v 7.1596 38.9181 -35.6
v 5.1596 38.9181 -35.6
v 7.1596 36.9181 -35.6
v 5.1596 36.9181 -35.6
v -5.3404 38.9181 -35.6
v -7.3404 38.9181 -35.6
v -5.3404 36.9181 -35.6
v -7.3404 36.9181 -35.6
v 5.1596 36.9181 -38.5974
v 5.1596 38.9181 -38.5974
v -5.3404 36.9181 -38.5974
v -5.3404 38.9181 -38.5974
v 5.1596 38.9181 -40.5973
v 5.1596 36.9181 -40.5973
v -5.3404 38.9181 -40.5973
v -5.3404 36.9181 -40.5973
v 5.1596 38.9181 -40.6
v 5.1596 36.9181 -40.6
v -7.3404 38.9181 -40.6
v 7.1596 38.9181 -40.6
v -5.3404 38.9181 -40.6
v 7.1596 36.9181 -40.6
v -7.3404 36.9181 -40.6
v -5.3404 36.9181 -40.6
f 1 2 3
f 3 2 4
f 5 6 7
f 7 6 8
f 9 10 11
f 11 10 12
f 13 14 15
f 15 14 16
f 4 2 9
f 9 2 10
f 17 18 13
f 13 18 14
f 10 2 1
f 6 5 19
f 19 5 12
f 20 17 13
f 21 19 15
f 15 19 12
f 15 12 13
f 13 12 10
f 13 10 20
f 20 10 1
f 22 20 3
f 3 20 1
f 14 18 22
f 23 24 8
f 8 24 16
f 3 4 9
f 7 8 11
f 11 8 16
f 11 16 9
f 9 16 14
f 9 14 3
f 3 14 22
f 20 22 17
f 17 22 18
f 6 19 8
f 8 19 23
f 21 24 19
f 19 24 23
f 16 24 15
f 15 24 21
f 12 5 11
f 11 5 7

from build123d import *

# Parameters (mm, degrees)
CUT_EXTRUDE1_DEPTH     = 5
CUT_EXTRUDE3_DEPTH     = 45
SKETCH8_R              = 40
CUT_EXTRUDE4_DEPTH     = 32
FILLET1_R              = 7
CUT_REVOLVE1_START     = 17
CUT_REVOLVE1_DEPTH     = 30.5
SKETCH18_W             = 13
SKETCH18_H             = 8
CUT_EXTRUDE13_DEPTH    = 5
SKETCH20_W             = 84
SKETCH20_H             = 7
CUT_EXTRUDE15_DEPTH    = 5
SKETCH19_R             = 1.5
CUT_EXTRUDE14_DEPTH    = 12
FILLET3_R              = 4
SKETCH21_W             = 16
SKETCH21_H             = 5
CUT_EXTRUDE16_DEPTH    = 5
CIRPATTERN1_COUNT      = 4
SKETCH22_W             = 5
SKETCH22_H             = 12
BOSS_EXTRUDE1_DEPTH    = 1.5
SKETCH23_W             = 5
SKETCH23_H             = 4.4
SKETCH23_H_2           = 4
BOSS_EXTRUDE2_DEPTH    = 17
SKETCH24_W             = 2
SKETCH24_H             = 3
BOSS_EXTRUDE3_DEPTH    = 2
CIRPATTERN2_COUNT      = 5
CUT_REVOLVE2_START     = 17
CUT_REVOLVE2_DEPTH     = 30.5
SKETCH29_W             = 16.2
SKETCH29_H             = 11.2
SKETCH29_W_2           = 13
SKETCH29_H_2           = 8
BOSS_EXTRUDE4_DEPTH    = 20
CUT_EXTRUDE18_DEPTH    = 12
SKETCH34_R             = 2.3
BOSS_EXTRUDE5_DEPTH    = 3.5
BOSS_EXTRUDE6_START    = 3.5
SKETCH35_R             = 2.3
BOSS_EXTRUDE6_DEPTH    = 3.5
SKETCH36_W             = 2
SKETCH36_H             = 2
BOSS_EXTRUDE7_DEPTH    = 5
SKETCH37_W             = 2
SKETCH37_H             = 2
BOSS_EXTRUDE8_DEPTH    = 12.5
SKETCH40_W             = 2
SKETCH40_H             = 2
BOSS_EXTRUDE9_DEPTH    = 5
INTERSECT7_START       = -43
INTERSECT7_OUTLINE_W   = 16.2
INTERSECT7_OUTLINE_H   = 20
INTERSECT7_OUTLINE_R   = 2.3
INTERSECT7_DEPTH       = 86
INTERSECT7_START_2     = -35.6
INTERSECT7_2_OUTLINE_W = 16.2
INTERSECT7_2_OUTLINE_H = 20
INTERSECT7_2_OUTLINE_R = 2.3
INTERSECT7_2_DEPTH     = 37.6


with BuildPart() as part:
    # Sketch1 → Revolve1 (revolve)
    with BuildSketch(Plane.XY, mode=Mode.PRIVATE) as revolve1_sk:
        with BuildLine():
            Line((37, 55), (0, 55))
            Line((0, 55), (0, 11.5))
            Line((0, 11.5), (22.5, 11.5))
            Line((22.5, 11.5), (22.5, 0))
            Line((22.5, 0), (25, 0))
            Line((25, 0), (25, 11.5))
            Line((25, 11.5), (42, 11.5))
            Line((42, 11.5), (42, 50))
            ThreePointArc((42, 50), (40.535533906, 53.535533906), (37, 55))
        make_face()
    revolve(revolve1_sk.sketch.rotate(Axis((0, 2, 0), (0, 1, 0)), 90), axis=Axis((0, 2, 0), (0, 1, 0)))

    # Sketch5 → Cut-Extrude1 (cut)
    with BuildSketch(Plane(origin=(0, 55, 0), x_dir=(1, 0, 0), z_dir=(0, 1, 0))):
        with BuildLine():
            Line((-42, 0), (-40, 0))
            Line((-40, 0), (40, 0))
            Line((40, 0), (42, 0))
            ThreePointArc((42, 0), (0, 42), (-42, 0))
        make_face()
    extrude(amount=-CUT_EXTRUDE1_DEPTH, mode=Mode.SUBTRACT)

    # Sketch7 → Cut-Extrude3 (cut)
    with BuildSketch(Plane.XZ.offset(-11.5)):
        with BuildLine():
            Line((21, 0), (-21, 0))
            ThreePointArc((-21, 0), (-18.277714988, -10.340461055), (-10.816653826, -18))
            Line((-10.816653826, -18), (10.816653826, -18))
            ThreePointArc((10.816653826, -18), (18.277714988, -10.340461055), (21, 0))
        make_face()
    extrude(amount=-CUT_EXTRUDE3_DEPTH, mode=Mode.SUBTRACT)

    # Sketch8 → Cut-Extrude4 (cut)
    with BuildSketch(Plane(origin=(0, 47.5, 0), x_dir=(1, 0, 0), z_dir=(0, 1, 0))):
        with Locations(Location((0, 0, 0), (0, 0, 270))):
            Circle(SKETCH8_R)
        with BuildLine():
            Line((22.912878475, -2), (-22.981606036, -2))
            ThreePointArc((-22.981606036, -2), (-20.067855169, 10.855581536), (-10.573881727, 20))
            Line((-10.573881727, 20), (10.505154166, 20))
            ThreePointArc((10.505154166, 20), (19.999127608, 10.855581536), (22.912878475, -2))
        make_face(mode=Mode.SUBTRACT)
    extrude(amount=-CUT_EXTRUDE4_DEPTH, mode=Mode.SUBTRACT)

    # Fillet1
    fillet1_edges = [part.edges().sort_by_distance(p)[0] for p in [
        (-21, 30.75, 0),
        (21, 30.75, 0),
    ]]
    fillet(fillet1_edges, radius=FILLET1_R)

    # Cut-Revolve1: read off the stored shape, not the designer's step
    # Cut-Revolve1 outline → Cut-Revolve1 (cut)
    with BuildSketch(Plane(origin=(0, 0, 0), x_dir=(1, 0, 0), z_dir=(0, 1, 0)).offset(CUT_REVOLVE1_START)):
        with BuildLine():
            Line((-34.641016151, -20), (-36.373066959, -21))
            ThreePointArc((-36.373066959, -21), (0, -42), (36.373066959, -21))
            Line((36.373066959, -21), (34.641016151, -20))
            ThreePointArc((34.641016151, -20), (0, -40), (-34.641016151, -20))
        make_face()
    extrude(amount=CUT_REVOLVE1_DEPTH, mode=Mode.SUBTRACT)

    # Sketch18 → Cut-Extrude13 (cut)
    with BuildSketch(Plane(origin=(0, 50, 0), x_dir=(1, 0, 0), z_dir=(0, 1, 0))):
        with Locations((0, 30)):
            Rectangle(SKETCH18_W, SKETCH18_H)
    extrude(amount=-CUT_EXTRUDE13_DEPTH, mode=Mode.SUBTRACT)

    # Sketch20 → Cut-Extrude15 (cut)
    with BuildSketch(Plane(origin=(0, 55, 0), x_dir=(1, 0, 0), z_dir=(0, 1, 0))):
        with Locations((0, -3.5)):
            Rectangle(SKETCH20_W, SKETCH20_H)
    extrude(amount=-CUT_EXTRUDE15_DEPTH, mode=Mode.SUBTRACT)

    # Sketch19 → Cut-Extrude14 (cut)
    with BuildSketch(Plane(origin=(0, 0, 7), x_dir=(-1, 0, 0), z_dir=(0, 0, -1))):
        with Locations((0, 52.5)):
            Circle(SKETCH19_R)
        with Locations((-29.412558482, 52.5)):
            Circle(SKETCH19_R)
        with Locations((29.412558482, 52.5)):
            Circle(SKETCH19_R)
    extrude(amount=-CUT_EXTRUDE14_DEPTH, mode=Mode.SUBTRACT)

    # Fillet3
    fillet3_edges = [part.edges().sort_by_distance(p)[0] for p in [
        (0, 11.5, 42),
    ]]
    fillet(fillet3_edges, radius=FILLET3_R)

    # Sketch21 → Cut-Extrude16 (cut)
    with BuildSketch(Plane(origin=(0, 15.5, 0), x_dir=(1, 0, 0), z_dir=(0, 1, 0))):
        with Locations((0, -29.5)):
            Rectangle(SKETCH21_W, SKETCH21_H)
    cut_extrude16 = extrude(amount=-CUT_EXTRUDE16_DEPTH, mode=Mode.SUBTRACT)

    # CirPattern1: Cut-Extrude16 ×4 about axis
    cirpattern1_axis = Axis((0, 0, 0), (0, 1, 0))
    for i in range(1, CIRPATTERN1_COUNT):
        add(cut_extrude16.rotate(cirpattern1_axis, i * 360 / CIRPATTERN1_COUNT), mode=Mode.SUBTRACT)

    # Sketch22 → Boss-Extrude1 (add)
    with BuildSketch(Plane(origin=(0, 15.5, 0), x_dir=(1, 0, 0), z_dir=(0, 1, 0))):
        with Locations((35.5, -4)):
            Rectangle(SKETCH22_W, SKETCH22_H)
    extrude(amount=BOSS_EXTRUDE1_DEPTH)

    # Sketch23 → Boss-Extrude2 (add)
    with BuildSketch(Plane(origin=(0, 17, 0), x_dir=(1, 0, 0), z_dir=(0, 1, 0))):
        with Locations((35.5, -0.2)):
            Rectangle(SKETCH23_W, SKETCH23_H)
        with Locations((35.5, -8)):
            Rectangle(SKETCH23_W, SKETCH23_H_2)
    extrude(amount=BOSS_EXTRUDE2_DEPTH)

    # Sketch24 → Boss-Extrude3 (add)
    with BuildSketch(Plane.XZ):
        with Locations((0, -22.5)):
            Rectangle(SKETCH24_W, SKETCH24_H)
    boss_extrude3 = extrude(amount=-BOSS_EXTRUDE3_DEPTH)

    # CirPattern2: Boss-Extrude3 ×5 about axis
    cirpattern2_axis = Axis((0, 0, 0), (0, 1, 0))
    for i in range(1, CIRPATTERN2_COUNT):
        add(boss_extrude3.rotate(cirpattern2_axis, i * 360 / CIRPATTERN2_COUNT))

    # Cut-Revolve2: read off the stored shape, not the designer's step
    # Cut-Revolve2 outline → Cut-Revolve2 (cut)
    with BuildSketch(Plane(origin=(0, 0, 0), x_dir=(1, 0, 0), z_dir=(0, 1, 0)).offset(CUT_REVOLVE2_START)):
        with BuildLine():
            ThreePointArc((-30.641777725, 25.711504387), (0, 40), (30.641777725, 25.711504387))
            Line((30.641777725, 25.711504387), (32.173866611, 26.997079607))
            ThreePointArc((32.173866611, 26.997079607), (0, 42), (-32.173866611, 26.997079607))
            Line((-32.173866611, 26.997079607), (-30.641777725, 25.711504387))
        make_face()
    extrude(amount=CUT_REVOLVE2_DEPTH, mode=Mode.SUBTRACT)

    # Sketch29 → Boss-Extrude4 (add)
    with BuildSketch(Plane.XZ.offset(-47.5)):
        with Locations((0, -30)):
            Rectangle(SKETCH29_W, SKETCH29_H)
        with Locations((0, -30)):
            Rectangle(SKETCH29_W_2, SKETCH29_H_2, mode=Mode.SUBTRACT)
    extrude(amount=BOSS_EXTRUDE4_DEPTH)

    # Sketch32 → Cut-Extrude18 (cut)
    with BuildSketch(Plane(origin=(0, 0, -35.6), x_dir=(-1, 0, 0), z_dir=(0, 0, -1))):
        with BuildLine():
            Line((-4.55, 40.24987133), (-4.55, 41.2))
            ThreePointArc((-4.55, 41.2), (-4.258194078, 41.946205288), (-3.537595761, 42.296506718))
            ThreePointArc((-3.537595761, 42.296506718), (0, 45.55), (3.537595761, 42.296506718))
            ThreePointArc((3.537595761, 42.296506718), (4.258194078, 41.946205288), (4.55, 41.2))
            Line((4.55, 41.2), (4.55, 40.675870248))
            ThreePointArc((4.55, 40.675870248), (4.010824187, 37.38705417), (2.4497454, 34.442558497))
            ThreePointArc((2.4497454, 34.442558497), (1.613339464, 32.35352404), (1.966232927, 30.131114075))
            ThreePointArc((1.966232927, 30.131114075), (1.891748397, 29.932488662), (1.693122984, 30.006973192))
            ThreePointArc((1.693122984, 30.006973192), (1.315208372, 32.386958334), (2.210917864, 34.624111266))
            ThreePointArc((2.210917864, 34.624111266), (3.726528337, 37.48284493), (4.25, 40.675870248))
            Line((4.25, 40.675870248), (4.25, 41.2))
            ThreePointArc((4.25, 41.2), (4.015685425, 41.765685425), (3.45, 42))
            Line((3.45, 42), (3.25, 42))
            ThreePointArc((3.25, 42), (0, 45.25), (-3.25, 42))
            Line((-3.25, 42), (-3.45, 42))
            ThreePointArc((-3.45, 42), (-4.015685425, 41.765685425), (-4.25, 41.2))
            Line((-4.25, 41.2), (-4.25, 40.24987133))
            ThreePointArc((-4.25, 40.24987133), (-3.782078371, 37.22671372), (-2.422103613, 34.486476277))
            ThreePointArc((-2.422103613, 34.486476277), (-1.704952932, 32.326507722), (-2.304950317, 30.131109718))
            ThreePointArc((-2.304950317, 30.131109718), (-2.51173821, 30.0837941), (-2.559053827, 30.290581992))
            ThreePointArc((-2.559053827, 30.290581992), (-2.00484446, 32.318441057), (-2.667266721, 34.313574426))
            ThreePointArc((-2.667266721, 34.313574426), (-4.068040722, 37.136018992), (-4.55, 40.24987133))
        make_face()
    extrude(amount=-CUT_EXTRUDE18_DEPTH, mode=Mode.SUBTRACT)

    # Sketch34 → Boss-Extrude5 (add)
    with BuildSketch(Plane.XY.offset(-34)):
        with Locations(Location((0, 42, 0), (0, 0, 180))):
            Circle(SKETCH34_R)
    extrude(amount=BOSS_EXTRUDE5_DEPTH)

    # Sketch35 → Boss-Extrude6 (add)
    with BuildSketch(Plane(origin=(0, 0, -26), x_dir=(-1, 0, 0), z_dir=(0, 0, -1)).offset(BOSS_EXTRUDE6_START)):
        with Locations((0, 42)):
            Circle(SKETCH35_R)
    extrude(amount=-BOSS_EXTRUDE6_DEPTH)

    # Sketch36 → Boss-Extrude7 (add)
    with BuildSketch(Plane(origin=(0, 0, -35.6), x_dir=(-1, 0, 0), z_dir=(0, 0, -1))):
        with Locations((-6.159647943, 37.918102195)):
            Rectangle(SKETCH36_W, SKETCH36_H)
    extrude(amount=BOSS_EXTRUDE7_DEPTH)

    # Sketch37 → Boss-Extrude8 (add)
    with BuildSketch(Plane.ZY.offset(-5.159647943)):
        with Locations((-39.597351245, 37.918102195)):
            Rectangle(SKETCH37_W, SKETCH37_H)
    extrude(amount=BOSS_EXTRUDE8_DEPTH)

    # Sketch40 → Boss-Extrude9 (add)
    with BuildSketch(Plane(origin=(0, 0, -35.6), x_dir=(-1, 0, 0), z_dir=(0, 0, -1))):
        with Locations((6.340352057, 37.918102195)):
            Rectangle(SKETCH40_W, SKETCH40_H)
    extrude(amount=BOSS_EXTRUDE9_DEPTH)

    # Intersect7: read off the stored shape, not the designer's step
    # Intersect7 outline → Intersect7 (cut)
    # profile 1 of 2: a face of its own
    with BuildSketch(Plane.XY.offset(INTERSECT7_START)):
        Polygon((44, 55), (-44, 55), (-44, 11.5), (-27, 11.5), (-27, 0), (27, 0), (27, 11.5), (44, 11.5), align=None)
        with Locations((0, 37.5)):
            Rectangle(INTERSECT7_OUTLINE_W, INTERSECT7_OUTLINE_H, mode=Mode.SUBTRACT)
    # profile 2 of 2: a face of its own
    with BuildSketch(Plane.XY.offset(INTERSECT7_START)):
        with Locations((0, 42)):
            Circle(INTERSECT7_OUTLINE_R)
    extrude(amount=INTERSECT7_DEPTH, mode=Mode.SUBTRACT)

    # Intersect7 2 outline → Intersect7 2 (cut)
    with BuildSketch(Plane.XY.offset(INTERSECT7_START_2)):
        with Locations((0, 37.5)):
            Rectangle(INTERSECT7_2_OUTLINE_W, INTERSECT7_2_OUTLINE_H)
        with Locations((0, 42)):
            Circle(INTERSECT7_2_OUTLINE_R, mode=Mode.SUBTRACT)
    extrude(amount=INTERSECT7_2_DEPTH, mode=Mode.SUBTRACT)


solid = part.part
